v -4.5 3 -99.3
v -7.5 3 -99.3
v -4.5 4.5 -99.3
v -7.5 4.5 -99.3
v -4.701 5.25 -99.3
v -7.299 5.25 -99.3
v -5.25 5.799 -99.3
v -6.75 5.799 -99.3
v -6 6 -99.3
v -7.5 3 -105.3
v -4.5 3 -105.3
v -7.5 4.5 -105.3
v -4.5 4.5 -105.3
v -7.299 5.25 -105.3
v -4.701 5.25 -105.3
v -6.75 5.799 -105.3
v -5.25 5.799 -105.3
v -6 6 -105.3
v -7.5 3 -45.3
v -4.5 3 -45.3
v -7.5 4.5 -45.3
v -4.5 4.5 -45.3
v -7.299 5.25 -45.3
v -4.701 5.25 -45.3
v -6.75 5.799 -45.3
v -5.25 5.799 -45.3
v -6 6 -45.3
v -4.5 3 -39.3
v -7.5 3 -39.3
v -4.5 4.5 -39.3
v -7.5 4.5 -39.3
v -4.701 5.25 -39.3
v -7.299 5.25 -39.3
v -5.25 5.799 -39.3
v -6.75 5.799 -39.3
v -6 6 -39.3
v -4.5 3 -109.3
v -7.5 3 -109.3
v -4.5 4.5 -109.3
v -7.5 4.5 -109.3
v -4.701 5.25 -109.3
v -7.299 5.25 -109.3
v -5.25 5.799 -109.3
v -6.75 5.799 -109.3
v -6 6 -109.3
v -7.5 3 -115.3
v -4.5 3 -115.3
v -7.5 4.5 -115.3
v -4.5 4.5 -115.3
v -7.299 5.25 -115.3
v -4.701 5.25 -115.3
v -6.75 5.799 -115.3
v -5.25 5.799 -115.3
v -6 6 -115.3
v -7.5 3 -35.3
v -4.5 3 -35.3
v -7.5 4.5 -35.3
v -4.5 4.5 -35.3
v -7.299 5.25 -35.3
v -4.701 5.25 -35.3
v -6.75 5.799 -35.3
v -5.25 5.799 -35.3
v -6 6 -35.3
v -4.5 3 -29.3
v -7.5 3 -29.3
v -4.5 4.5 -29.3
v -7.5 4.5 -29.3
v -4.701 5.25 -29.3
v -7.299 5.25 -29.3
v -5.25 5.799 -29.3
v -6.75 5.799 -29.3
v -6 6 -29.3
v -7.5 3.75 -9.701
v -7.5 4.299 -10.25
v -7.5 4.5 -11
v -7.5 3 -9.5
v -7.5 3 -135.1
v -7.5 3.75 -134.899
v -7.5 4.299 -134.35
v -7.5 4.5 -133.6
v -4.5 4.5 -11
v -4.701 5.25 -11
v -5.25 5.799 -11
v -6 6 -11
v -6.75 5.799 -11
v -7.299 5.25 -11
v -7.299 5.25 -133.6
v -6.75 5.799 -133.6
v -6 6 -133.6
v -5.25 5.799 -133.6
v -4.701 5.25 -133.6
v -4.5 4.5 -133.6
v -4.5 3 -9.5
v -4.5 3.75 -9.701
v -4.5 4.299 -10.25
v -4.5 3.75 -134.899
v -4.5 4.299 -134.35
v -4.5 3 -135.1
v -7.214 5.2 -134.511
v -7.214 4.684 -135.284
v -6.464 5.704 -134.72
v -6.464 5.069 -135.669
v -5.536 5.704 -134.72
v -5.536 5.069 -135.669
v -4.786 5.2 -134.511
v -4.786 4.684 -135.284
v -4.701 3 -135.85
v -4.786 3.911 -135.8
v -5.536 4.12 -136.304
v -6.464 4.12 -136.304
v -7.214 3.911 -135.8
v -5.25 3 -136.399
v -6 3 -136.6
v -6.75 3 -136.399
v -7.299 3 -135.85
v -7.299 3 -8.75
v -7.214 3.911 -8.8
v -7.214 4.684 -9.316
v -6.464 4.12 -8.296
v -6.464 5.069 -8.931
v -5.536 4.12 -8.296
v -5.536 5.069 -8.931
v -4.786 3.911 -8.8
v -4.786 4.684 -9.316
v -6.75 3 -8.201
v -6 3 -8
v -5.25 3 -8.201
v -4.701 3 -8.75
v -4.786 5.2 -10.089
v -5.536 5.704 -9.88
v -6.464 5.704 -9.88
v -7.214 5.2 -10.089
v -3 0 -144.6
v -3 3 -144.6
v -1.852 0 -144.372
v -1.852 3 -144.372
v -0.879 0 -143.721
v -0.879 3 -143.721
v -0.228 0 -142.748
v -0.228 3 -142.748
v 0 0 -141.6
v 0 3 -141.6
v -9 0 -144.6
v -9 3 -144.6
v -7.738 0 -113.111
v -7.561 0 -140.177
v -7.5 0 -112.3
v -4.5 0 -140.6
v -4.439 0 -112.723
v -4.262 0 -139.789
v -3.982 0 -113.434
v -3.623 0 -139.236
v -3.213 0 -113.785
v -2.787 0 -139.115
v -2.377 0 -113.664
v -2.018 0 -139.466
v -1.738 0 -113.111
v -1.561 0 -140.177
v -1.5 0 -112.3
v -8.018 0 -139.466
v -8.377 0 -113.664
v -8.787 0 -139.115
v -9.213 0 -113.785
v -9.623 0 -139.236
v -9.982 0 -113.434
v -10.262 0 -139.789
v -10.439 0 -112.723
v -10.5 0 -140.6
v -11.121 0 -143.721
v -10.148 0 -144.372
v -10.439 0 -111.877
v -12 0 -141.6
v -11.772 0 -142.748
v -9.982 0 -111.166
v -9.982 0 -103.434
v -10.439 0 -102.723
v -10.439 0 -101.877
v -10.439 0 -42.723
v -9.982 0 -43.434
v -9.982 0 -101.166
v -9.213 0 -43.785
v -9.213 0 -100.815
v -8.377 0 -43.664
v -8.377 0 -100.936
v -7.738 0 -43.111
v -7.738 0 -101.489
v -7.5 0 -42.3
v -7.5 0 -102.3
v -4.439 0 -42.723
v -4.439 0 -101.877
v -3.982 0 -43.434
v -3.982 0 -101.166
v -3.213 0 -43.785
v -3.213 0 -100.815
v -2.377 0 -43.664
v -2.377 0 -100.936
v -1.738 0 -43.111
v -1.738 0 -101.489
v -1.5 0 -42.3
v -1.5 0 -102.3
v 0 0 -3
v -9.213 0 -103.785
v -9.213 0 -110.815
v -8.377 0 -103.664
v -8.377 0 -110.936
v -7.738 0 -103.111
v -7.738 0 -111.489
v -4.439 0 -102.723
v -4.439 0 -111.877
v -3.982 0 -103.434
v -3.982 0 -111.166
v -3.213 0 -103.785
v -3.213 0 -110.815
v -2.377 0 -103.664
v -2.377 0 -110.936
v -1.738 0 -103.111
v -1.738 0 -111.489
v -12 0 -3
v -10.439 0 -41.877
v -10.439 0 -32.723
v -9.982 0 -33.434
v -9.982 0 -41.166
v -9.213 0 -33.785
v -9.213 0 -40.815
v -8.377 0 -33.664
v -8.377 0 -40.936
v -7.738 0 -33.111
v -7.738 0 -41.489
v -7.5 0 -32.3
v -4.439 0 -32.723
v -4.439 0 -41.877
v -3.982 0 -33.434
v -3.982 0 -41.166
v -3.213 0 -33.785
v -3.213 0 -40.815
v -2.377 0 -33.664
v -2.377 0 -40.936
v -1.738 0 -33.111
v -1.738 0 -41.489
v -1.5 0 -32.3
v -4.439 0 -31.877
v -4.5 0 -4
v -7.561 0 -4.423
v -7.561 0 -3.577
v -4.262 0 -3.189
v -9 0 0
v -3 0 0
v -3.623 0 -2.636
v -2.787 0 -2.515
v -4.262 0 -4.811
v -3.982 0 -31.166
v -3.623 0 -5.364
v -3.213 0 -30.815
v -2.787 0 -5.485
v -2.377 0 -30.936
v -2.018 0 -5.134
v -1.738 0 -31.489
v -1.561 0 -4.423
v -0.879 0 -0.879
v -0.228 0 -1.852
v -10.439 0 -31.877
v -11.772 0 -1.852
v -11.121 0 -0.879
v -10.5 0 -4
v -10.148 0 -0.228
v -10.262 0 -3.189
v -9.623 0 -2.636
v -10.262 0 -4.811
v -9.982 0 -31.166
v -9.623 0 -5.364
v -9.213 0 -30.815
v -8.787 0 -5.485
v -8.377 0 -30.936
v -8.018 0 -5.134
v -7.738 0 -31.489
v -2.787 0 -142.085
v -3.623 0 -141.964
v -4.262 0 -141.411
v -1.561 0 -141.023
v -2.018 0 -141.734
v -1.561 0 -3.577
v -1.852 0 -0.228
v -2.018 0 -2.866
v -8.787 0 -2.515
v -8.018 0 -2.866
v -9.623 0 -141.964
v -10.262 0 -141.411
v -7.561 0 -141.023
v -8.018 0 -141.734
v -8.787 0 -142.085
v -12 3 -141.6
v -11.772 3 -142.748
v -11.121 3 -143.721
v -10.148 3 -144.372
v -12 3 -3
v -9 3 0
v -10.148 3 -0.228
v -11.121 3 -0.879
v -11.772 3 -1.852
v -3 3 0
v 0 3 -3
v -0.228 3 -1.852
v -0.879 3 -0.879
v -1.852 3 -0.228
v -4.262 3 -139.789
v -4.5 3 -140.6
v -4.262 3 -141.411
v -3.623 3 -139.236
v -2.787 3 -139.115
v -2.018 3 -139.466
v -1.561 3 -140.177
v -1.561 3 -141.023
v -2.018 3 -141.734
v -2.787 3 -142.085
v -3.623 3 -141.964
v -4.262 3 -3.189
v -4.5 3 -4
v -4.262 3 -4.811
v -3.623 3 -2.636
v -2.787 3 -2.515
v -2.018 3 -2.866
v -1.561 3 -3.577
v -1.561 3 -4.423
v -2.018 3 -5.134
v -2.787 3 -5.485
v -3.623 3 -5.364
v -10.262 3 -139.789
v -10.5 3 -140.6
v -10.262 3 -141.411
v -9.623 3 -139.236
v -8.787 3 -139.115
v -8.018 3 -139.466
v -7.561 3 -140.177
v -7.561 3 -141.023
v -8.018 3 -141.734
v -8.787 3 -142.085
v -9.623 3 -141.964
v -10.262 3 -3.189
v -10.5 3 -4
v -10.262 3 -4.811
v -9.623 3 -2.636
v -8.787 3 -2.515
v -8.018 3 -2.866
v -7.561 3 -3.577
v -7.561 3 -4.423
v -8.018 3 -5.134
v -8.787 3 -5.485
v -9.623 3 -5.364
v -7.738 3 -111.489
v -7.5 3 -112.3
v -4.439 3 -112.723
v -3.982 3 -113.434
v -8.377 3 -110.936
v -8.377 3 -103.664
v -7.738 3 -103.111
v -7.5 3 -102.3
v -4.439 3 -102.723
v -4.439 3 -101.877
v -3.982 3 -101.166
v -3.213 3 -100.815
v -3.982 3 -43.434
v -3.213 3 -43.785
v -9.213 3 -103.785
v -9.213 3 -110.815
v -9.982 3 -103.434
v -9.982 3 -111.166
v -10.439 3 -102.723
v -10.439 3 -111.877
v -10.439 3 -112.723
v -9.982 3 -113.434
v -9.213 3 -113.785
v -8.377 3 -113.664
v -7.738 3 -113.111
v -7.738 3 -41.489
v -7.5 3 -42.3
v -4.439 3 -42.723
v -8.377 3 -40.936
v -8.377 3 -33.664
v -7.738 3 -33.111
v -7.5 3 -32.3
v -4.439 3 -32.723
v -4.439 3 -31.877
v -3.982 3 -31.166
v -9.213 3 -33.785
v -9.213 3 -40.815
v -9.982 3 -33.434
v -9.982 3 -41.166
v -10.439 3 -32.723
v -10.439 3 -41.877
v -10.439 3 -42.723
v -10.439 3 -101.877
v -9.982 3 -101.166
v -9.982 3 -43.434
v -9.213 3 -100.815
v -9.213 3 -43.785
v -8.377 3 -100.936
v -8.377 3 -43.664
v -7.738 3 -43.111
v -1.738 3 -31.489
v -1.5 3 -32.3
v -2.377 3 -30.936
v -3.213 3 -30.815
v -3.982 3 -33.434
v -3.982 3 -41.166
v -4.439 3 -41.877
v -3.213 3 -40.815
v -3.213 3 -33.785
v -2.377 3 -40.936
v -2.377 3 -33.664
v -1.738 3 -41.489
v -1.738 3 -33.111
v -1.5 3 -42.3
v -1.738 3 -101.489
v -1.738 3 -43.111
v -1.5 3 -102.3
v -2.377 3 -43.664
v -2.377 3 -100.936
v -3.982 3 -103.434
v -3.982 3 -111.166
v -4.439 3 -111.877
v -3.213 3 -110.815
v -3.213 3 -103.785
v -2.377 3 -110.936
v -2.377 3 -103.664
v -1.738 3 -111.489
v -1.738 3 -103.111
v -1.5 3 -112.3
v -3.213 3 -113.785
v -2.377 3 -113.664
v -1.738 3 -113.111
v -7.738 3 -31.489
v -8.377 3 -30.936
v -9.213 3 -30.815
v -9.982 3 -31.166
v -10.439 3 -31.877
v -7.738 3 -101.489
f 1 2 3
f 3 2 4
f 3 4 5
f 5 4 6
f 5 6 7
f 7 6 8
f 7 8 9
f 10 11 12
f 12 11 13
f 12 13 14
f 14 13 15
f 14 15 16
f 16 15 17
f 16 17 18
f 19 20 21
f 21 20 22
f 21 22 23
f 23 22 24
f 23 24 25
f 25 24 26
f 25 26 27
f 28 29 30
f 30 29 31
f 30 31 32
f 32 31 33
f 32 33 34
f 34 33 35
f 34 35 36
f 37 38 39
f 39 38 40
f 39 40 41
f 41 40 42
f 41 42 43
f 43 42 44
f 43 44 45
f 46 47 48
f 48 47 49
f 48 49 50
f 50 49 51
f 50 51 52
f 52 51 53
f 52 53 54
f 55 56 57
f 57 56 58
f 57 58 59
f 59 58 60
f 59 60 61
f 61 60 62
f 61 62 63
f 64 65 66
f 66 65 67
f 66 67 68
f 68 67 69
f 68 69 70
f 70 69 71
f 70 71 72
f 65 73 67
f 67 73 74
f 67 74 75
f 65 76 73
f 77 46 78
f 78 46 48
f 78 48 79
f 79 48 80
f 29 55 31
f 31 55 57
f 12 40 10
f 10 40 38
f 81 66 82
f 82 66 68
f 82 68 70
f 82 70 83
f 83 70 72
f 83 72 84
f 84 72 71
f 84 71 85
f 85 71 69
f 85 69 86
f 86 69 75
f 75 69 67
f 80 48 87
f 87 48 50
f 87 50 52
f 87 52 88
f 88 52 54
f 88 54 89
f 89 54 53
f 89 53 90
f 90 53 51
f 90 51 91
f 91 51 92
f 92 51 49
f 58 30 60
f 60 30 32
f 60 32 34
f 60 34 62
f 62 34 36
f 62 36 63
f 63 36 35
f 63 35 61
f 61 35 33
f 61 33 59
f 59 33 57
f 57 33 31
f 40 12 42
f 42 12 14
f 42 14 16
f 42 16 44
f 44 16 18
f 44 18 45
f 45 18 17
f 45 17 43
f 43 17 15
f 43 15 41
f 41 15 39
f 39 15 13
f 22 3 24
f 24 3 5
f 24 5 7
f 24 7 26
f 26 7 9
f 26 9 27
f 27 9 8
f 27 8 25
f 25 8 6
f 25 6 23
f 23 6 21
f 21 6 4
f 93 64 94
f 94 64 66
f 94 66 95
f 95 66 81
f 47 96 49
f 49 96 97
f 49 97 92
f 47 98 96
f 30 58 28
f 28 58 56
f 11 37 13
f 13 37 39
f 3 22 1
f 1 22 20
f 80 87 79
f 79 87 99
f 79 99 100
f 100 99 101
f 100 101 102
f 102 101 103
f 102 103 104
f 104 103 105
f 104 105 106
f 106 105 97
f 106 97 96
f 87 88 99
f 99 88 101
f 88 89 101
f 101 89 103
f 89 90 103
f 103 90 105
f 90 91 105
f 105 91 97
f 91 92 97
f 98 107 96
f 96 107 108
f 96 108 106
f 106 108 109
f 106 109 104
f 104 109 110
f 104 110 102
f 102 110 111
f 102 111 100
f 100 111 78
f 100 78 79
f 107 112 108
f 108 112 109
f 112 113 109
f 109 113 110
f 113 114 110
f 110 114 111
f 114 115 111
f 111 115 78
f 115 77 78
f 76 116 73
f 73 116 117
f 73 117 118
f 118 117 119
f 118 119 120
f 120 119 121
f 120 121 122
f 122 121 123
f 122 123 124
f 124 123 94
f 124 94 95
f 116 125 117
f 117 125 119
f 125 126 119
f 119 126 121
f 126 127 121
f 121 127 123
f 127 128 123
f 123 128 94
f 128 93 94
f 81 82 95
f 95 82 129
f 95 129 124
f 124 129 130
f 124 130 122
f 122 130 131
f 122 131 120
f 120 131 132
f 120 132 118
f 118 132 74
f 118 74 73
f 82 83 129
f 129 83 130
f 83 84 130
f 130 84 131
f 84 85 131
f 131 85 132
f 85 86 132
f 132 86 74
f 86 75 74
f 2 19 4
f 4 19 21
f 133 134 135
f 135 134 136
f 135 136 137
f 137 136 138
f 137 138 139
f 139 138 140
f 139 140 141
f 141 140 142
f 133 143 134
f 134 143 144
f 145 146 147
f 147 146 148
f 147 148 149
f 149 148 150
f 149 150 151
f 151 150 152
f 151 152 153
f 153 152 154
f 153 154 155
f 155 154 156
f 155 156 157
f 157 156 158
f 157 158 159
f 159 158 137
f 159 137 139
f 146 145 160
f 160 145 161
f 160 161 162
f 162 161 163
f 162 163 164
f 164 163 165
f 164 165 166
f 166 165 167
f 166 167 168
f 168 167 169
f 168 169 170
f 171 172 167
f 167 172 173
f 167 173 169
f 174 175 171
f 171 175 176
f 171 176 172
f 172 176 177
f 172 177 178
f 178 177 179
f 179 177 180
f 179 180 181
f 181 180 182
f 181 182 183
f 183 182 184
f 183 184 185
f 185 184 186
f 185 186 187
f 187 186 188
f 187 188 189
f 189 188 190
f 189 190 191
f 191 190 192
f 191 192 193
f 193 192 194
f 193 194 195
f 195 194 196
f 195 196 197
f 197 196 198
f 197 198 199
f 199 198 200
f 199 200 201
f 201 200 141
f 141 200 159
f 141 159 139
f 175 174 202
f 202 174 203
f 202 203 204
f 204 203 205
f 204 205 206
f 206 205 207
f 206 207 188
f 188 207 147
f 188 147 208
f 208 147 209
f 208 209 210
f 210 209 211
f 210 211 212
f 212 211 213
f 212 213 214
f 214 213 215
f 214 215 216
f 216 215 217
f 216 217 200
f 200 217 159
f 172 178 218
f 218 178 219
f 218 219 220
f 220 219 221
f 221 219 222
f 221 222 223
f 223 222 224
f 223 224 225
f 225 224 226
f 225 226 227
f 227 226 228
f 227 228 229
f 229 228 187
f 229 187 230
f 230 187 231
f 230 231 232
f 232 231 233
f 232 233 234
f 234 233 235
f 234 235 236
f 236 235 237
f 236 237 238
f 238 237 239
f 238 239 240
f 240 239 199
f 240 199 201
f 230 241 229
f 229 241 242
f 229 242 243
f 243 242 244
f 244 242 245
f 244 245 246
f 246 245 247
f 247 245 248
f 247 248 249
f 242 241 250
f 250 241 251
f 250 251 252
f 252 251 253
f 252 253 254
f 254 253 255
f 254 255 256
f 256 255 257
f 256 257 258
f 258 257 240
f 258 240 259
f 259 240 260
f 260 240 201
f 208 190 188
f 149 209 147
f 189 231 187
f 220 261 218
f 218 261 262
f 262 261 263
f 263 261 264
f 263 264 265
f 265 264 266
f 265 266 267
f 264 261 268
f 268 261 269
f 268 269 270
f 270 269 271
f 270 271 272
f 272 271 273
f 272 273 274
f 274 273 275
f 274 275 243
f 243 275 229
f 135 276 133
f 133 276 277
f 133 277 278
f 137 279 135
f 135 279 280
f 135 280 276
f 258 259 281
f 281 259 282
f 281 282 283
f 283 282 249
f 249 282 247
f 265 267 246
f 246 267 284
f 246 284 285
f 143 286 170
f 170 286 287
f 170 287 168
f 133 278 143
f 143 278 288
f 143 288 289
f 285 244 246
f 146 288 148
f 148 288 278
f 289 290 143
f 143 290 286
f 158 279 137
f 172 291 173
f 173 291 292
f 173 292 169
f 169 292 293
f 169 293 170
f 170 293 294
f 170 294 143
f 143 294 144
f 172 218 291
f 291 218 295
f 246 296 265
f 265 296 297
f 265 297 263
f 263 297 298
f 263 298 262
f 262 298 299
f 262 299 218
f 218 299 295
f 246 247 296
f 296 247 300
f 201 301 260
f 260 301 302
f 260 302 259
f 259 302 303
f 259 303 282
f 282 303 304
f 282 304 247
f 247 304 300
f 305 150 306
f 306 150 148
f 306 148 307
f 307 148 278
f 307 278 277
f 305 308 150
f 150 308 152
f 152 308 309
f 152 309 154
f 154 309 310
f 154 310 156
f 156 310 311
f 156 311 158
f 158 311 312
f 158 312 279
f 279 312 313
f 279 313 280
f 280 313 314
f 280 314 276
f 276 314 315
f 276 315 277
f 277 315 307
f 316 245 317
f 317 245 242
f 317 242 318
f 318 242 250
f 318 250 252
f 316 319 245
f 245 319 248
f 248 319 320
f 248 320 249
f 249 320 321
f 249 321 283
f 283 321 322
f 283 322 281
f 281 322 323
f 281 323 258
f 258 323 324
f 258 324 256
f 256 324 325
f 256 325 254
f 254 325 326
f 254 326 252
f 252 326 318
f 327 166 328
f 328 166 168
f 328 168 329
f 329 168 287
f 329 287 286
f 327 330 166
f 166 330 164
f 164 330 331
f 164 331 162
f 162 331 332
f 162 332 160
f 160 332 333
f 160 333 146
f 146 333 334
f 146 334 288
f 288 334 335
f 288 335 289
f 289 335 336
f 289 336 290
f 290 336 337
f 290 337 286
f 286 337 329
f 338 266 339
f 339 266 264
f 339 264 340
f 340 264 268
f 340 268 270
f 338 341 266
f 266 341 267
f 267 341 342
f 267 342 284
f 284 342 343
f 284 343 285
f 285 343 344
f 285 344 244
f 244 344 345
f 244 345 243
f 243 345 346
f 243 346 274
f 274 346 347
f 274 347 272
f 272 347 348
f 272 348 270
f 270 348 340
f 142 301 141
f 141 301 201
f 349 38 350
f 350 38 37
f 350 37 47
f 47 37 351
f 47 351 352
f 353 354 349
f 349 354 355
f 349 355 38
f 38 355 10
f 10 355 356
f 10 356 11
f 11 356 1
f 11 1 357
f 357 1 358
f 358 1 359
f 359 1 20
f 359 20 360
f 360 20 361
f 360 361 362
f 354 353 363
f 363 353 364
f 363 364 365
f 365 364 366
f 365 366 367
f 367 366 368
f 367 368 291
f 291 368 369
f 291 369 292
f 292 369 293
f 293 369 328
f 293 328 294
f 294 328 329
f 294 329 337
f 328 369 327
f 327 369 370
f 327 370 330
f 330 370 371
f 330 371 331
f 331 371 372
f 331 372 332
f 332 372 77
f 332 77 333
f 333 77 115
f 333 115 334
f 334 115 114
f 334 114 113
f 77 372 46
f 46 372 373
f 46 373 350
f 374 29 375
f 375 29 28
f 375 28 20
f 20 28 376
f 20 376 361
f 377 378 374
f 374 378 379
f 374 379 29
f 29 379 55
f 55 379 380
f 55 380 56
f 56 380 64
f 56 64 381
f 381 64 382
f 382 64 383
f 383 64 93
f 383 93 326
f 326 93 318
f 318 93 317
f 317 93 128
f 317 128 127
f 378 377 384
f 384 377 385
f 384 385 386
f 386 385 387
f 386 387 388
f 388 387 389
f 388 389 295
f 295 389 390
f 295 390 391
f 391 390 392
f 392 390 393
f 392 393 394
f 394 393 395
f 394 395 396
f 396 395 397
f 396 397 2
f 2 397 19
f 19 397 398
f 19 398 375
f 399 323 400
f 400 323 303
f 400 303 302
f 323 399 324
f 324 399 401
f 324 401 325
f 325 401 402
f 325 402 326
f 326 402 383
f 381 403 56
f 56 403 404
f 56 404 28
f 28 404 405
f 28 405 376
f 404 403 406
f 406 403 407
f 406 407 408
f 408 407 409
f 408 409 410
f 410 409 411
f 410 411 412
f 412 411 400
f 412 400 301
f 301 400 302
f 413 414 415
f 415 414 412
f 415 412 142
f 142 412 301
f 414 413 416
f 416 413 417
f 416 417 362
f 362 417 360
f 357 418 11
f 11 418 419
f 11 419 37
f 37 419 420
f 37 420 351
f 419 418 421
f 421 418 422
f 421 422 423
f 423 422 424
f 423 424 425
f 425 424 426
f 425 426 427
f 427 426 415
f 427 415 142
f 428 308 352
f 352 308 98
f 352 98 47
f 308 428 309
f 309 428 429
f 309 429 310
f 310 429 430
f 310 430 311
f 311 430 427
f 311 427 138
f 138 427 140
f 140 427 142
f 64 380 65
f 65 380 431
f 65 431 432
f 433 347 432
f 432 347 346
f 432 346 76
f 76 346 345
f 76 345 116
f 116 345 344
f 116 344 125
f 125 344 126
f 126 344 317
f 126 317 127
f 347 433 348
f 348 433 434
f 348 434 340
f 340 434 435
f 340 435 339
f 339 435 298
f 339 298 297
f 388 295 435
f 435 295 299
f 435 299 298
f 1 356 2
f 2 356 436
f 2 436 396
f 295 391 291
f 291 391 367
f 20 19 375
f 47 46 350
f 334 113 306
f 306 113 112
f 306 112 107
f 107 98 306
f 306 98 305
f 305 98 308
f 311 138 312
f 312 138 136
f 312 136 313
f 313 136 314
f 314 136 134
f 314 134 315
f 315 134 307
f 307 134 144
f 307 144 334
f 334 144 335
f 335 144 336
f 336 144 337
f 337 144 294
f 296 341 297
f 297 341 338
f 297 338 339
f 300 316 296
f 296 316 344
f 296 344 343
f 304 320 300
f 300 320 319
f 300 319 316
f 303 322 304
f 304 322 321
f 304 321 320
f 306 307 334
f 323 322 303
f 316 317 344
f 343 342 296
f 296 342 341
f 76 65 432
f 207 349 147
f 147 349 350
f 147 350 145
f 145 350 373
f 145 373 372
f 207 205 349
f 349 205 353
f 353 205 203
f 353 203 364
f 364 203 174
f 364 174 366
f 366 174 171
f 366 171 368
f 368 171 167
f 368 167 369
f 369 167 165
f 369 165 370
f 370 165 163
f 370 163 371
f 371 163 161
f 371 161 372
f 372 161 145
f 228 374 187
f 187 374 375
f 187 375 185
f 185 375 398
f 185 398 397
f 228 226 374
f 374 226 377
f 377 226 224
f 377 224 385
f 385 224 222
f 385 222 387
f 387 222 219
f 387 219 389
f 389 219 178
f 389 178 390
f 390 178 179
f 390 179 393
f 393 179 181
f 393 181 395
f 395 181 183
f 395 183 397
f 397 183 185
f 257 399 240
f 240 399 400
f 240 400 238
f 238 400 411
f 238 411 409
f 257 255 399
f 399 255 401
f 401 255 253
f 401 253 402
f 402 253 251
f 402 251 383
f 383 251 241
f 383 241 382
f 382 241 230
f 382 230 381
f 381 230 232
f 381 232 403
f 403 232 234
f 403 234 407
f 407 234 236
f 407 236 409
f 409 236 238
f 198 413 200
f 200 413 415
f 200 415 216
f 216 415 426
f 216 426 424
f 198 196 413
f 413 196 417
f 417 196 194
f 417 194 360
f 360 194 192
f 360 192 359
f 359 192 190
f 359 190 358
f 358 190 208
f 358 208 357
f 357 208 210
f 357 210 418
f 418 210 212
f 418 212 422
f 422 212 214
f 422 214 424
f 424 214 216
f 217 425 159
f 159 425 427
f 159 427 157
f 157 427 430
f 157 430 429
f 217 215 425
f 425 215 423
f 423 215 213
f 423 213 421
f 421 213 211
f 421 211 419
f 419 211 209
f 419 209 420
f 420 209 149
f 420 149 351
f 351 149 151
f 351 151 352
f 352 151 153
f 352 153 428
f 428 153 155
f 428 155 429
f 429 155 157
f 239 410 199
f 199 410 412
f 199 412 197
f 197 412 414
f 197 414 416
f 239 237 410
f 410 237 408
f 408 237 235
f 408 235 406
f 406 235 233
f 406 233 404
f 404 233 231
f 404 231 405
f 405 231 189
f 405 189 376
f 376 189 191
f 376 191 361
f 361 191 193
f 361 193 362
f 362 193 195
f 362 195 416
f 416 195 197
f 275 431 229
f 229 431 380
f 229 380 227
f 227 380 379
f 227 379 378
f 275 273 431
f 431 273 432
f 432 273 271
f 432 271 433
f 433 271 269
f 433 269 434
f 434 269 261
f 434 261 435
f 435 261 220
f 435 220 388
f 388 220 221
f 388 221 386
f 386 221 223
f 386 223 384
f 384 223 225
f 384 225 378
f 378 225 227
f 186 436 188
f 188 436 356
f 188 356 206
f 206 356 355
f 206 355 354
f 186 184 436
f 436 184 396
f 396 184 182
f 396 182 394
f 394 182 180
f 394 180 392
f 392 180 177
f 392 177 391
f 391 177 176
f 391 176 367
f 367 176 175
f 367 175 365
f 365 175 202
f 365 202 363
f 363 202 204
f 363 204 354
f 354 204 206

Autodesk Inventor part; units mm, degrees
ref_plane "YZ Plane" through (0, 0, 0) normal (1, 0, 0) x (0, 1, 0)
ref_plane "XZ Plane" through (0, 0, 0) normal (0, 1, 0) x (-1, 0, 0)
ref_plane "XY Plane" through (0, 0, 0) normal (0, 0, 1) x (1, 0, 0)
sketch "Sketch1" plane through (0, 0, 0) normal (0, 1, 0) x (-1, 0, 0)
  line L0 (0, 0) -> (12, 0)
  line L1 (12, 0) -> (12, -144.6)
  line L2 (12, -144.6) -> (0, -144.6)
  line L3 (0, -144.6) -> (0, 0)
  line L4 (0, 0) -> (3, 0)
  line L5 (3, 0) -> (3, -4)
  line L6 (3, -4) -> (0, -4)
  line L7 (0, -4) -> (0, 0)
  line L8 (3, -4) -> (9, -4)
  circle A0 centre (9, -4) radius 1.5
  circle A1 centre (3, -4) radius 1.5
  line L9 (12, -144.6) -> (9, -144.6)
  line L10 (9, -144.6) -> (9, -140.6)
  line L11 (9, -140.6) -> (12, -140.6)
  line L12 (12, -140.6) -> (12, -144.6)
  line L13 (9, -140.6) -> (3, -140.6)
  circle A2 centre (9, -140.6) radius 1.5
  circle A3 centre (3, -140.6) radius 1.5
  dimension "d0" = 12
  dimension "d1" = 144.6
  dimension "d2" = 3
  dimension "d3" = 4
  dimension "d4" = 6
  dimension "d5" = 3
  dimension "d6" = 3
  dimension "d7" = 3
  dimension "d8" = 4
  dimension "d9" = 6
  dimension "d10" = 3
  dimension "d11" = 3
extrude "Extrusion1" add sketch "Sketch1" along normal blind 3 contours L0 L5 A1 L6 L3 | L0 L1 L11 A2 L10 L2 L3 L6 A1 L5 | L1 L2 L10 A2 L11
sketch "Sketch2" plane through (0, 3, 0) normal (0, 1, 0) x (1, 0, 0)
  line L0 (-12, 0) -> (0, 0) projected
  line L1 (-6, 0) -> (-6, 144.6) construction
  line L2 (0, 144.6) -> (-12, 144.6) projected
  line L3 (-4.5, 0) -> (-4.5, 144.6)
  line L4 (-7.5, 144.6) -> (-7.5, 0)
  arc A0 (-7.5, 0) -> (-4.5, 0) centre (-6, 0) ccw
  arc A1 (-4.5, 144.6) -> (-7.5, 144.6) centre (-6, 144.6) ccw
  line L5 (0, 0) -> (0, 144.6) projected
  line L6 (-12, 0) -> (0, 0)
  line L7 (0, 0) -> (0, 8)
  line L8 (0, 8) -> (-12, 8)
  line L9 (-12, 8) -> (-12, 0)
  line L10 (-12, 144.6) -> (0, 144.6)
  line L11 (0, 144.6) -> (0, 136.6)
  line L12 (0, 136.6) -> (-12, 136.6)
  line L13 (-12, 136.6) -> (-12, 144.6)
  point P0 (-6, 72.3)
  point P1 (-4.5, 136.6)
  point P2 (-7.5, 136.6)
  point P3 (-7.5, 8)
  point P4 (-4.5, 8)
  dimension "d14" = 3
  dimension "d15" = 8
  dimension "d16" = 8
extrude "Extrusion2" add sketch "Sketch2" along normal blind 3 contours L4 L12 L3 L8
fillet "Fillet1" radius 3 2 edges at (-6, 6, -8) (-6, 6, -136.6)
fillet "Fillet2" radius 3 4 edges at (0, 1.5, 0) (-12, 1.5, 0) (-12, 1.5, -144.6) (0, 1.5, -144.6)
fillet "Fillet3" radius 1.5 6 edges at (-7.5, 5.1215, -8.8785) (-7.5, 5.1215, -135.7215) (-7.5, 6, -72.3) (-4.5, 5.1215, -135.7215) (-4.5, 5.1215, -8.8785) (-4.5, 6, -72.3)
sketch "Sketch3" plane through (0, 3, 0) normal (0, 1, 0) x (1, 0, 0)
  line L0 (-12, 141.6) -> (-12, 3) projected
  line L1 (-12, 72.3) -> (-6, 72.3)
  line L2 (-9, 42.3) -> (-3, 42.3)
  line L3 (-3, 42.3) -> (-3, 102.3)
  line L4 (-3, 102.3) -> (-9, 102.3)
  line L5 (-9, 102.3) -> (-9, 42.3)
  line L6 (-9, 42.3) -> (-3, 102.3) construction
  line L7 (-3, 42.3) -> (-9, 102.3) construction
  line L8 (-9, 32.3) -> (-3, 32.3)
  line L9 (-3, 32.3) -> (-3, 112.3)
  line L10 (-3, 112.3) -> (-9, 112.3)
  line L11 (-9, 112.3) -> (-9, 32.3)
  line L12 (-9, 32.3) -> (-3, 112.3) construction
  line L13 (-3, 32.3) -> (-9, 112.3) construction
  line L14 (-9, 112.3) -> (-3, 112.3) construction
  line L15 (-9, 109.3) -> (-3, 109.3)
  line L16 (-3, 115.3) -> (-9, 115.3)
  arc A0 (-9, 115.3) -> (-9, 109.3) centre (-9, 112.3) ccw
  arc A1 (-3, 109.3) -> (-3, 115.3) centre (-3, 112.3) ccw
  circle A2 centre (-9, 112.3) radius 1.5
  circle A3 centre (-3, 112.3) radius 1.5
  circle A4 centre (-9, 102.3) radius 1.5
  circle A5 centre (-3, 102.3) radius 1.5
  line L17 (-9, 102.3) -> (-3, 102.3) construction
  line L18 (-9, 99.3) -> (-3, 99.3)
  line L19 (-3, 105.3) -> (-9, 105.3)
  arc A6 (-9, 105.3) -> (-9, 99.3) centre (-9, 102.3) ccw
  arc A7 (-3, 99.3) -> (-3, 105.3) centre (-3, 102.3) ccw
  line L20 (-3, 32.3) -> (-9, 32.3)
  line L21 (-3, 42.3) -> (-9, 42.3)
  line L22 (-9, 42.3) -> (-3, 42.3) construction
  line L23 (-9, 39.3) -> (-3, 39.3)
  line L24 (-3, 45.3) -> (-9, 45.3)
  arc A8 (-9, 45.3) -> (-9, 39.3) centre (-9, 42.3) ccw
  arc A9 (-3, 39.3) -> (-3, 45.3) centre (-3, 42.3) ccw
  circle A10 centre (-9, 42.3) radius 1.5
  circle A11 centre (-3, 42.3) radius 1.5
  circle A12 centre (-9, 32.3) radius 1.5
  circle A13 centre (-3, 32.3) radius 1.5
  line L25 (-9, 32.3) -> (-3, 32.3) construction
  line L26 (-9, 29.3) -> (-3, 29.3)
  line L27 (-3, 35.3) -> (-9, 35.3)
  arc A14 (-9, 35.3) -> (-9, 29.3) centre (-9, 32.3) ccw
  arc A15 (-3, 29.3) -> (-3, 35.3) centre (-3, 32.3) ccw
  point P0 (0, 0)
  point P1 (-6, 112.3)
  point P2 (-6, 102.3)
  point P3 (-6, 42.3)
  point P4 (-6, 32.3)
  dimension "d22" = 6
  dimension "d23" = 6
  dimension "d24" = 60
  dimension "d25" = 6
  dimension "d26" = 80
  dimension "d27" = 6
  dimension "d28" = 3
  dimension "d29" = 3
  dimension "d30" = 3
  dimension "d31" = 3
  dimension "d32" = 6
  dimension "d33" = 6
  dimension "d34" = 6
  dimension "d35" = 6
  dimension "d36" = 3
  dimension "d37" = 3
  dimension "d38" = 3
  dimension "d39" = 3
  dimension "d40" = 6
extrude "Extrusion3" cut sketch "Sketch3" along normal blind 3 contours A0 L16 A1 L9 A3 L10 A2 L11 | A6 L11 A4 L5 | L11 A2 L10 A3 L9 L15 | L19 L9 A5 L4 A4 L11 | L5 A4 L4 A5 L3 L18 | A8 L5 A10 L11 | A7 L3 A5 L9 | A14 L11 A12 L8 A13 L9 A15 L26 | L24 L3 A11 L2 A10 L5 | L11 A10 L2 A11 L9 L23 | A9 L9 A11 L3 | L27 L9 A13 L8 A12 L11
extrude "Extrusion4" cut sketch "Sketch3" against normal blind 3 contours A2 L10 L11 | L11 L10 A2 | A4 L4 L11 | L11 L5 A4 | L5 L4 A4 | A3 L10 L9 | L9 L10 A3 | A5 L3 L9 | L9 L4 A5 | A5 L4 L3 | A10 L2 L5 | L5 L11 A10 | L11 L2 A10 | A11 L9 L3 | L3 L2 A11 | A12 L8 L11 | L11 L8 A12 | A11 L2 L9 | A13 L8 L9 | L9 L8 A13
properties part number "structural_bar1"
